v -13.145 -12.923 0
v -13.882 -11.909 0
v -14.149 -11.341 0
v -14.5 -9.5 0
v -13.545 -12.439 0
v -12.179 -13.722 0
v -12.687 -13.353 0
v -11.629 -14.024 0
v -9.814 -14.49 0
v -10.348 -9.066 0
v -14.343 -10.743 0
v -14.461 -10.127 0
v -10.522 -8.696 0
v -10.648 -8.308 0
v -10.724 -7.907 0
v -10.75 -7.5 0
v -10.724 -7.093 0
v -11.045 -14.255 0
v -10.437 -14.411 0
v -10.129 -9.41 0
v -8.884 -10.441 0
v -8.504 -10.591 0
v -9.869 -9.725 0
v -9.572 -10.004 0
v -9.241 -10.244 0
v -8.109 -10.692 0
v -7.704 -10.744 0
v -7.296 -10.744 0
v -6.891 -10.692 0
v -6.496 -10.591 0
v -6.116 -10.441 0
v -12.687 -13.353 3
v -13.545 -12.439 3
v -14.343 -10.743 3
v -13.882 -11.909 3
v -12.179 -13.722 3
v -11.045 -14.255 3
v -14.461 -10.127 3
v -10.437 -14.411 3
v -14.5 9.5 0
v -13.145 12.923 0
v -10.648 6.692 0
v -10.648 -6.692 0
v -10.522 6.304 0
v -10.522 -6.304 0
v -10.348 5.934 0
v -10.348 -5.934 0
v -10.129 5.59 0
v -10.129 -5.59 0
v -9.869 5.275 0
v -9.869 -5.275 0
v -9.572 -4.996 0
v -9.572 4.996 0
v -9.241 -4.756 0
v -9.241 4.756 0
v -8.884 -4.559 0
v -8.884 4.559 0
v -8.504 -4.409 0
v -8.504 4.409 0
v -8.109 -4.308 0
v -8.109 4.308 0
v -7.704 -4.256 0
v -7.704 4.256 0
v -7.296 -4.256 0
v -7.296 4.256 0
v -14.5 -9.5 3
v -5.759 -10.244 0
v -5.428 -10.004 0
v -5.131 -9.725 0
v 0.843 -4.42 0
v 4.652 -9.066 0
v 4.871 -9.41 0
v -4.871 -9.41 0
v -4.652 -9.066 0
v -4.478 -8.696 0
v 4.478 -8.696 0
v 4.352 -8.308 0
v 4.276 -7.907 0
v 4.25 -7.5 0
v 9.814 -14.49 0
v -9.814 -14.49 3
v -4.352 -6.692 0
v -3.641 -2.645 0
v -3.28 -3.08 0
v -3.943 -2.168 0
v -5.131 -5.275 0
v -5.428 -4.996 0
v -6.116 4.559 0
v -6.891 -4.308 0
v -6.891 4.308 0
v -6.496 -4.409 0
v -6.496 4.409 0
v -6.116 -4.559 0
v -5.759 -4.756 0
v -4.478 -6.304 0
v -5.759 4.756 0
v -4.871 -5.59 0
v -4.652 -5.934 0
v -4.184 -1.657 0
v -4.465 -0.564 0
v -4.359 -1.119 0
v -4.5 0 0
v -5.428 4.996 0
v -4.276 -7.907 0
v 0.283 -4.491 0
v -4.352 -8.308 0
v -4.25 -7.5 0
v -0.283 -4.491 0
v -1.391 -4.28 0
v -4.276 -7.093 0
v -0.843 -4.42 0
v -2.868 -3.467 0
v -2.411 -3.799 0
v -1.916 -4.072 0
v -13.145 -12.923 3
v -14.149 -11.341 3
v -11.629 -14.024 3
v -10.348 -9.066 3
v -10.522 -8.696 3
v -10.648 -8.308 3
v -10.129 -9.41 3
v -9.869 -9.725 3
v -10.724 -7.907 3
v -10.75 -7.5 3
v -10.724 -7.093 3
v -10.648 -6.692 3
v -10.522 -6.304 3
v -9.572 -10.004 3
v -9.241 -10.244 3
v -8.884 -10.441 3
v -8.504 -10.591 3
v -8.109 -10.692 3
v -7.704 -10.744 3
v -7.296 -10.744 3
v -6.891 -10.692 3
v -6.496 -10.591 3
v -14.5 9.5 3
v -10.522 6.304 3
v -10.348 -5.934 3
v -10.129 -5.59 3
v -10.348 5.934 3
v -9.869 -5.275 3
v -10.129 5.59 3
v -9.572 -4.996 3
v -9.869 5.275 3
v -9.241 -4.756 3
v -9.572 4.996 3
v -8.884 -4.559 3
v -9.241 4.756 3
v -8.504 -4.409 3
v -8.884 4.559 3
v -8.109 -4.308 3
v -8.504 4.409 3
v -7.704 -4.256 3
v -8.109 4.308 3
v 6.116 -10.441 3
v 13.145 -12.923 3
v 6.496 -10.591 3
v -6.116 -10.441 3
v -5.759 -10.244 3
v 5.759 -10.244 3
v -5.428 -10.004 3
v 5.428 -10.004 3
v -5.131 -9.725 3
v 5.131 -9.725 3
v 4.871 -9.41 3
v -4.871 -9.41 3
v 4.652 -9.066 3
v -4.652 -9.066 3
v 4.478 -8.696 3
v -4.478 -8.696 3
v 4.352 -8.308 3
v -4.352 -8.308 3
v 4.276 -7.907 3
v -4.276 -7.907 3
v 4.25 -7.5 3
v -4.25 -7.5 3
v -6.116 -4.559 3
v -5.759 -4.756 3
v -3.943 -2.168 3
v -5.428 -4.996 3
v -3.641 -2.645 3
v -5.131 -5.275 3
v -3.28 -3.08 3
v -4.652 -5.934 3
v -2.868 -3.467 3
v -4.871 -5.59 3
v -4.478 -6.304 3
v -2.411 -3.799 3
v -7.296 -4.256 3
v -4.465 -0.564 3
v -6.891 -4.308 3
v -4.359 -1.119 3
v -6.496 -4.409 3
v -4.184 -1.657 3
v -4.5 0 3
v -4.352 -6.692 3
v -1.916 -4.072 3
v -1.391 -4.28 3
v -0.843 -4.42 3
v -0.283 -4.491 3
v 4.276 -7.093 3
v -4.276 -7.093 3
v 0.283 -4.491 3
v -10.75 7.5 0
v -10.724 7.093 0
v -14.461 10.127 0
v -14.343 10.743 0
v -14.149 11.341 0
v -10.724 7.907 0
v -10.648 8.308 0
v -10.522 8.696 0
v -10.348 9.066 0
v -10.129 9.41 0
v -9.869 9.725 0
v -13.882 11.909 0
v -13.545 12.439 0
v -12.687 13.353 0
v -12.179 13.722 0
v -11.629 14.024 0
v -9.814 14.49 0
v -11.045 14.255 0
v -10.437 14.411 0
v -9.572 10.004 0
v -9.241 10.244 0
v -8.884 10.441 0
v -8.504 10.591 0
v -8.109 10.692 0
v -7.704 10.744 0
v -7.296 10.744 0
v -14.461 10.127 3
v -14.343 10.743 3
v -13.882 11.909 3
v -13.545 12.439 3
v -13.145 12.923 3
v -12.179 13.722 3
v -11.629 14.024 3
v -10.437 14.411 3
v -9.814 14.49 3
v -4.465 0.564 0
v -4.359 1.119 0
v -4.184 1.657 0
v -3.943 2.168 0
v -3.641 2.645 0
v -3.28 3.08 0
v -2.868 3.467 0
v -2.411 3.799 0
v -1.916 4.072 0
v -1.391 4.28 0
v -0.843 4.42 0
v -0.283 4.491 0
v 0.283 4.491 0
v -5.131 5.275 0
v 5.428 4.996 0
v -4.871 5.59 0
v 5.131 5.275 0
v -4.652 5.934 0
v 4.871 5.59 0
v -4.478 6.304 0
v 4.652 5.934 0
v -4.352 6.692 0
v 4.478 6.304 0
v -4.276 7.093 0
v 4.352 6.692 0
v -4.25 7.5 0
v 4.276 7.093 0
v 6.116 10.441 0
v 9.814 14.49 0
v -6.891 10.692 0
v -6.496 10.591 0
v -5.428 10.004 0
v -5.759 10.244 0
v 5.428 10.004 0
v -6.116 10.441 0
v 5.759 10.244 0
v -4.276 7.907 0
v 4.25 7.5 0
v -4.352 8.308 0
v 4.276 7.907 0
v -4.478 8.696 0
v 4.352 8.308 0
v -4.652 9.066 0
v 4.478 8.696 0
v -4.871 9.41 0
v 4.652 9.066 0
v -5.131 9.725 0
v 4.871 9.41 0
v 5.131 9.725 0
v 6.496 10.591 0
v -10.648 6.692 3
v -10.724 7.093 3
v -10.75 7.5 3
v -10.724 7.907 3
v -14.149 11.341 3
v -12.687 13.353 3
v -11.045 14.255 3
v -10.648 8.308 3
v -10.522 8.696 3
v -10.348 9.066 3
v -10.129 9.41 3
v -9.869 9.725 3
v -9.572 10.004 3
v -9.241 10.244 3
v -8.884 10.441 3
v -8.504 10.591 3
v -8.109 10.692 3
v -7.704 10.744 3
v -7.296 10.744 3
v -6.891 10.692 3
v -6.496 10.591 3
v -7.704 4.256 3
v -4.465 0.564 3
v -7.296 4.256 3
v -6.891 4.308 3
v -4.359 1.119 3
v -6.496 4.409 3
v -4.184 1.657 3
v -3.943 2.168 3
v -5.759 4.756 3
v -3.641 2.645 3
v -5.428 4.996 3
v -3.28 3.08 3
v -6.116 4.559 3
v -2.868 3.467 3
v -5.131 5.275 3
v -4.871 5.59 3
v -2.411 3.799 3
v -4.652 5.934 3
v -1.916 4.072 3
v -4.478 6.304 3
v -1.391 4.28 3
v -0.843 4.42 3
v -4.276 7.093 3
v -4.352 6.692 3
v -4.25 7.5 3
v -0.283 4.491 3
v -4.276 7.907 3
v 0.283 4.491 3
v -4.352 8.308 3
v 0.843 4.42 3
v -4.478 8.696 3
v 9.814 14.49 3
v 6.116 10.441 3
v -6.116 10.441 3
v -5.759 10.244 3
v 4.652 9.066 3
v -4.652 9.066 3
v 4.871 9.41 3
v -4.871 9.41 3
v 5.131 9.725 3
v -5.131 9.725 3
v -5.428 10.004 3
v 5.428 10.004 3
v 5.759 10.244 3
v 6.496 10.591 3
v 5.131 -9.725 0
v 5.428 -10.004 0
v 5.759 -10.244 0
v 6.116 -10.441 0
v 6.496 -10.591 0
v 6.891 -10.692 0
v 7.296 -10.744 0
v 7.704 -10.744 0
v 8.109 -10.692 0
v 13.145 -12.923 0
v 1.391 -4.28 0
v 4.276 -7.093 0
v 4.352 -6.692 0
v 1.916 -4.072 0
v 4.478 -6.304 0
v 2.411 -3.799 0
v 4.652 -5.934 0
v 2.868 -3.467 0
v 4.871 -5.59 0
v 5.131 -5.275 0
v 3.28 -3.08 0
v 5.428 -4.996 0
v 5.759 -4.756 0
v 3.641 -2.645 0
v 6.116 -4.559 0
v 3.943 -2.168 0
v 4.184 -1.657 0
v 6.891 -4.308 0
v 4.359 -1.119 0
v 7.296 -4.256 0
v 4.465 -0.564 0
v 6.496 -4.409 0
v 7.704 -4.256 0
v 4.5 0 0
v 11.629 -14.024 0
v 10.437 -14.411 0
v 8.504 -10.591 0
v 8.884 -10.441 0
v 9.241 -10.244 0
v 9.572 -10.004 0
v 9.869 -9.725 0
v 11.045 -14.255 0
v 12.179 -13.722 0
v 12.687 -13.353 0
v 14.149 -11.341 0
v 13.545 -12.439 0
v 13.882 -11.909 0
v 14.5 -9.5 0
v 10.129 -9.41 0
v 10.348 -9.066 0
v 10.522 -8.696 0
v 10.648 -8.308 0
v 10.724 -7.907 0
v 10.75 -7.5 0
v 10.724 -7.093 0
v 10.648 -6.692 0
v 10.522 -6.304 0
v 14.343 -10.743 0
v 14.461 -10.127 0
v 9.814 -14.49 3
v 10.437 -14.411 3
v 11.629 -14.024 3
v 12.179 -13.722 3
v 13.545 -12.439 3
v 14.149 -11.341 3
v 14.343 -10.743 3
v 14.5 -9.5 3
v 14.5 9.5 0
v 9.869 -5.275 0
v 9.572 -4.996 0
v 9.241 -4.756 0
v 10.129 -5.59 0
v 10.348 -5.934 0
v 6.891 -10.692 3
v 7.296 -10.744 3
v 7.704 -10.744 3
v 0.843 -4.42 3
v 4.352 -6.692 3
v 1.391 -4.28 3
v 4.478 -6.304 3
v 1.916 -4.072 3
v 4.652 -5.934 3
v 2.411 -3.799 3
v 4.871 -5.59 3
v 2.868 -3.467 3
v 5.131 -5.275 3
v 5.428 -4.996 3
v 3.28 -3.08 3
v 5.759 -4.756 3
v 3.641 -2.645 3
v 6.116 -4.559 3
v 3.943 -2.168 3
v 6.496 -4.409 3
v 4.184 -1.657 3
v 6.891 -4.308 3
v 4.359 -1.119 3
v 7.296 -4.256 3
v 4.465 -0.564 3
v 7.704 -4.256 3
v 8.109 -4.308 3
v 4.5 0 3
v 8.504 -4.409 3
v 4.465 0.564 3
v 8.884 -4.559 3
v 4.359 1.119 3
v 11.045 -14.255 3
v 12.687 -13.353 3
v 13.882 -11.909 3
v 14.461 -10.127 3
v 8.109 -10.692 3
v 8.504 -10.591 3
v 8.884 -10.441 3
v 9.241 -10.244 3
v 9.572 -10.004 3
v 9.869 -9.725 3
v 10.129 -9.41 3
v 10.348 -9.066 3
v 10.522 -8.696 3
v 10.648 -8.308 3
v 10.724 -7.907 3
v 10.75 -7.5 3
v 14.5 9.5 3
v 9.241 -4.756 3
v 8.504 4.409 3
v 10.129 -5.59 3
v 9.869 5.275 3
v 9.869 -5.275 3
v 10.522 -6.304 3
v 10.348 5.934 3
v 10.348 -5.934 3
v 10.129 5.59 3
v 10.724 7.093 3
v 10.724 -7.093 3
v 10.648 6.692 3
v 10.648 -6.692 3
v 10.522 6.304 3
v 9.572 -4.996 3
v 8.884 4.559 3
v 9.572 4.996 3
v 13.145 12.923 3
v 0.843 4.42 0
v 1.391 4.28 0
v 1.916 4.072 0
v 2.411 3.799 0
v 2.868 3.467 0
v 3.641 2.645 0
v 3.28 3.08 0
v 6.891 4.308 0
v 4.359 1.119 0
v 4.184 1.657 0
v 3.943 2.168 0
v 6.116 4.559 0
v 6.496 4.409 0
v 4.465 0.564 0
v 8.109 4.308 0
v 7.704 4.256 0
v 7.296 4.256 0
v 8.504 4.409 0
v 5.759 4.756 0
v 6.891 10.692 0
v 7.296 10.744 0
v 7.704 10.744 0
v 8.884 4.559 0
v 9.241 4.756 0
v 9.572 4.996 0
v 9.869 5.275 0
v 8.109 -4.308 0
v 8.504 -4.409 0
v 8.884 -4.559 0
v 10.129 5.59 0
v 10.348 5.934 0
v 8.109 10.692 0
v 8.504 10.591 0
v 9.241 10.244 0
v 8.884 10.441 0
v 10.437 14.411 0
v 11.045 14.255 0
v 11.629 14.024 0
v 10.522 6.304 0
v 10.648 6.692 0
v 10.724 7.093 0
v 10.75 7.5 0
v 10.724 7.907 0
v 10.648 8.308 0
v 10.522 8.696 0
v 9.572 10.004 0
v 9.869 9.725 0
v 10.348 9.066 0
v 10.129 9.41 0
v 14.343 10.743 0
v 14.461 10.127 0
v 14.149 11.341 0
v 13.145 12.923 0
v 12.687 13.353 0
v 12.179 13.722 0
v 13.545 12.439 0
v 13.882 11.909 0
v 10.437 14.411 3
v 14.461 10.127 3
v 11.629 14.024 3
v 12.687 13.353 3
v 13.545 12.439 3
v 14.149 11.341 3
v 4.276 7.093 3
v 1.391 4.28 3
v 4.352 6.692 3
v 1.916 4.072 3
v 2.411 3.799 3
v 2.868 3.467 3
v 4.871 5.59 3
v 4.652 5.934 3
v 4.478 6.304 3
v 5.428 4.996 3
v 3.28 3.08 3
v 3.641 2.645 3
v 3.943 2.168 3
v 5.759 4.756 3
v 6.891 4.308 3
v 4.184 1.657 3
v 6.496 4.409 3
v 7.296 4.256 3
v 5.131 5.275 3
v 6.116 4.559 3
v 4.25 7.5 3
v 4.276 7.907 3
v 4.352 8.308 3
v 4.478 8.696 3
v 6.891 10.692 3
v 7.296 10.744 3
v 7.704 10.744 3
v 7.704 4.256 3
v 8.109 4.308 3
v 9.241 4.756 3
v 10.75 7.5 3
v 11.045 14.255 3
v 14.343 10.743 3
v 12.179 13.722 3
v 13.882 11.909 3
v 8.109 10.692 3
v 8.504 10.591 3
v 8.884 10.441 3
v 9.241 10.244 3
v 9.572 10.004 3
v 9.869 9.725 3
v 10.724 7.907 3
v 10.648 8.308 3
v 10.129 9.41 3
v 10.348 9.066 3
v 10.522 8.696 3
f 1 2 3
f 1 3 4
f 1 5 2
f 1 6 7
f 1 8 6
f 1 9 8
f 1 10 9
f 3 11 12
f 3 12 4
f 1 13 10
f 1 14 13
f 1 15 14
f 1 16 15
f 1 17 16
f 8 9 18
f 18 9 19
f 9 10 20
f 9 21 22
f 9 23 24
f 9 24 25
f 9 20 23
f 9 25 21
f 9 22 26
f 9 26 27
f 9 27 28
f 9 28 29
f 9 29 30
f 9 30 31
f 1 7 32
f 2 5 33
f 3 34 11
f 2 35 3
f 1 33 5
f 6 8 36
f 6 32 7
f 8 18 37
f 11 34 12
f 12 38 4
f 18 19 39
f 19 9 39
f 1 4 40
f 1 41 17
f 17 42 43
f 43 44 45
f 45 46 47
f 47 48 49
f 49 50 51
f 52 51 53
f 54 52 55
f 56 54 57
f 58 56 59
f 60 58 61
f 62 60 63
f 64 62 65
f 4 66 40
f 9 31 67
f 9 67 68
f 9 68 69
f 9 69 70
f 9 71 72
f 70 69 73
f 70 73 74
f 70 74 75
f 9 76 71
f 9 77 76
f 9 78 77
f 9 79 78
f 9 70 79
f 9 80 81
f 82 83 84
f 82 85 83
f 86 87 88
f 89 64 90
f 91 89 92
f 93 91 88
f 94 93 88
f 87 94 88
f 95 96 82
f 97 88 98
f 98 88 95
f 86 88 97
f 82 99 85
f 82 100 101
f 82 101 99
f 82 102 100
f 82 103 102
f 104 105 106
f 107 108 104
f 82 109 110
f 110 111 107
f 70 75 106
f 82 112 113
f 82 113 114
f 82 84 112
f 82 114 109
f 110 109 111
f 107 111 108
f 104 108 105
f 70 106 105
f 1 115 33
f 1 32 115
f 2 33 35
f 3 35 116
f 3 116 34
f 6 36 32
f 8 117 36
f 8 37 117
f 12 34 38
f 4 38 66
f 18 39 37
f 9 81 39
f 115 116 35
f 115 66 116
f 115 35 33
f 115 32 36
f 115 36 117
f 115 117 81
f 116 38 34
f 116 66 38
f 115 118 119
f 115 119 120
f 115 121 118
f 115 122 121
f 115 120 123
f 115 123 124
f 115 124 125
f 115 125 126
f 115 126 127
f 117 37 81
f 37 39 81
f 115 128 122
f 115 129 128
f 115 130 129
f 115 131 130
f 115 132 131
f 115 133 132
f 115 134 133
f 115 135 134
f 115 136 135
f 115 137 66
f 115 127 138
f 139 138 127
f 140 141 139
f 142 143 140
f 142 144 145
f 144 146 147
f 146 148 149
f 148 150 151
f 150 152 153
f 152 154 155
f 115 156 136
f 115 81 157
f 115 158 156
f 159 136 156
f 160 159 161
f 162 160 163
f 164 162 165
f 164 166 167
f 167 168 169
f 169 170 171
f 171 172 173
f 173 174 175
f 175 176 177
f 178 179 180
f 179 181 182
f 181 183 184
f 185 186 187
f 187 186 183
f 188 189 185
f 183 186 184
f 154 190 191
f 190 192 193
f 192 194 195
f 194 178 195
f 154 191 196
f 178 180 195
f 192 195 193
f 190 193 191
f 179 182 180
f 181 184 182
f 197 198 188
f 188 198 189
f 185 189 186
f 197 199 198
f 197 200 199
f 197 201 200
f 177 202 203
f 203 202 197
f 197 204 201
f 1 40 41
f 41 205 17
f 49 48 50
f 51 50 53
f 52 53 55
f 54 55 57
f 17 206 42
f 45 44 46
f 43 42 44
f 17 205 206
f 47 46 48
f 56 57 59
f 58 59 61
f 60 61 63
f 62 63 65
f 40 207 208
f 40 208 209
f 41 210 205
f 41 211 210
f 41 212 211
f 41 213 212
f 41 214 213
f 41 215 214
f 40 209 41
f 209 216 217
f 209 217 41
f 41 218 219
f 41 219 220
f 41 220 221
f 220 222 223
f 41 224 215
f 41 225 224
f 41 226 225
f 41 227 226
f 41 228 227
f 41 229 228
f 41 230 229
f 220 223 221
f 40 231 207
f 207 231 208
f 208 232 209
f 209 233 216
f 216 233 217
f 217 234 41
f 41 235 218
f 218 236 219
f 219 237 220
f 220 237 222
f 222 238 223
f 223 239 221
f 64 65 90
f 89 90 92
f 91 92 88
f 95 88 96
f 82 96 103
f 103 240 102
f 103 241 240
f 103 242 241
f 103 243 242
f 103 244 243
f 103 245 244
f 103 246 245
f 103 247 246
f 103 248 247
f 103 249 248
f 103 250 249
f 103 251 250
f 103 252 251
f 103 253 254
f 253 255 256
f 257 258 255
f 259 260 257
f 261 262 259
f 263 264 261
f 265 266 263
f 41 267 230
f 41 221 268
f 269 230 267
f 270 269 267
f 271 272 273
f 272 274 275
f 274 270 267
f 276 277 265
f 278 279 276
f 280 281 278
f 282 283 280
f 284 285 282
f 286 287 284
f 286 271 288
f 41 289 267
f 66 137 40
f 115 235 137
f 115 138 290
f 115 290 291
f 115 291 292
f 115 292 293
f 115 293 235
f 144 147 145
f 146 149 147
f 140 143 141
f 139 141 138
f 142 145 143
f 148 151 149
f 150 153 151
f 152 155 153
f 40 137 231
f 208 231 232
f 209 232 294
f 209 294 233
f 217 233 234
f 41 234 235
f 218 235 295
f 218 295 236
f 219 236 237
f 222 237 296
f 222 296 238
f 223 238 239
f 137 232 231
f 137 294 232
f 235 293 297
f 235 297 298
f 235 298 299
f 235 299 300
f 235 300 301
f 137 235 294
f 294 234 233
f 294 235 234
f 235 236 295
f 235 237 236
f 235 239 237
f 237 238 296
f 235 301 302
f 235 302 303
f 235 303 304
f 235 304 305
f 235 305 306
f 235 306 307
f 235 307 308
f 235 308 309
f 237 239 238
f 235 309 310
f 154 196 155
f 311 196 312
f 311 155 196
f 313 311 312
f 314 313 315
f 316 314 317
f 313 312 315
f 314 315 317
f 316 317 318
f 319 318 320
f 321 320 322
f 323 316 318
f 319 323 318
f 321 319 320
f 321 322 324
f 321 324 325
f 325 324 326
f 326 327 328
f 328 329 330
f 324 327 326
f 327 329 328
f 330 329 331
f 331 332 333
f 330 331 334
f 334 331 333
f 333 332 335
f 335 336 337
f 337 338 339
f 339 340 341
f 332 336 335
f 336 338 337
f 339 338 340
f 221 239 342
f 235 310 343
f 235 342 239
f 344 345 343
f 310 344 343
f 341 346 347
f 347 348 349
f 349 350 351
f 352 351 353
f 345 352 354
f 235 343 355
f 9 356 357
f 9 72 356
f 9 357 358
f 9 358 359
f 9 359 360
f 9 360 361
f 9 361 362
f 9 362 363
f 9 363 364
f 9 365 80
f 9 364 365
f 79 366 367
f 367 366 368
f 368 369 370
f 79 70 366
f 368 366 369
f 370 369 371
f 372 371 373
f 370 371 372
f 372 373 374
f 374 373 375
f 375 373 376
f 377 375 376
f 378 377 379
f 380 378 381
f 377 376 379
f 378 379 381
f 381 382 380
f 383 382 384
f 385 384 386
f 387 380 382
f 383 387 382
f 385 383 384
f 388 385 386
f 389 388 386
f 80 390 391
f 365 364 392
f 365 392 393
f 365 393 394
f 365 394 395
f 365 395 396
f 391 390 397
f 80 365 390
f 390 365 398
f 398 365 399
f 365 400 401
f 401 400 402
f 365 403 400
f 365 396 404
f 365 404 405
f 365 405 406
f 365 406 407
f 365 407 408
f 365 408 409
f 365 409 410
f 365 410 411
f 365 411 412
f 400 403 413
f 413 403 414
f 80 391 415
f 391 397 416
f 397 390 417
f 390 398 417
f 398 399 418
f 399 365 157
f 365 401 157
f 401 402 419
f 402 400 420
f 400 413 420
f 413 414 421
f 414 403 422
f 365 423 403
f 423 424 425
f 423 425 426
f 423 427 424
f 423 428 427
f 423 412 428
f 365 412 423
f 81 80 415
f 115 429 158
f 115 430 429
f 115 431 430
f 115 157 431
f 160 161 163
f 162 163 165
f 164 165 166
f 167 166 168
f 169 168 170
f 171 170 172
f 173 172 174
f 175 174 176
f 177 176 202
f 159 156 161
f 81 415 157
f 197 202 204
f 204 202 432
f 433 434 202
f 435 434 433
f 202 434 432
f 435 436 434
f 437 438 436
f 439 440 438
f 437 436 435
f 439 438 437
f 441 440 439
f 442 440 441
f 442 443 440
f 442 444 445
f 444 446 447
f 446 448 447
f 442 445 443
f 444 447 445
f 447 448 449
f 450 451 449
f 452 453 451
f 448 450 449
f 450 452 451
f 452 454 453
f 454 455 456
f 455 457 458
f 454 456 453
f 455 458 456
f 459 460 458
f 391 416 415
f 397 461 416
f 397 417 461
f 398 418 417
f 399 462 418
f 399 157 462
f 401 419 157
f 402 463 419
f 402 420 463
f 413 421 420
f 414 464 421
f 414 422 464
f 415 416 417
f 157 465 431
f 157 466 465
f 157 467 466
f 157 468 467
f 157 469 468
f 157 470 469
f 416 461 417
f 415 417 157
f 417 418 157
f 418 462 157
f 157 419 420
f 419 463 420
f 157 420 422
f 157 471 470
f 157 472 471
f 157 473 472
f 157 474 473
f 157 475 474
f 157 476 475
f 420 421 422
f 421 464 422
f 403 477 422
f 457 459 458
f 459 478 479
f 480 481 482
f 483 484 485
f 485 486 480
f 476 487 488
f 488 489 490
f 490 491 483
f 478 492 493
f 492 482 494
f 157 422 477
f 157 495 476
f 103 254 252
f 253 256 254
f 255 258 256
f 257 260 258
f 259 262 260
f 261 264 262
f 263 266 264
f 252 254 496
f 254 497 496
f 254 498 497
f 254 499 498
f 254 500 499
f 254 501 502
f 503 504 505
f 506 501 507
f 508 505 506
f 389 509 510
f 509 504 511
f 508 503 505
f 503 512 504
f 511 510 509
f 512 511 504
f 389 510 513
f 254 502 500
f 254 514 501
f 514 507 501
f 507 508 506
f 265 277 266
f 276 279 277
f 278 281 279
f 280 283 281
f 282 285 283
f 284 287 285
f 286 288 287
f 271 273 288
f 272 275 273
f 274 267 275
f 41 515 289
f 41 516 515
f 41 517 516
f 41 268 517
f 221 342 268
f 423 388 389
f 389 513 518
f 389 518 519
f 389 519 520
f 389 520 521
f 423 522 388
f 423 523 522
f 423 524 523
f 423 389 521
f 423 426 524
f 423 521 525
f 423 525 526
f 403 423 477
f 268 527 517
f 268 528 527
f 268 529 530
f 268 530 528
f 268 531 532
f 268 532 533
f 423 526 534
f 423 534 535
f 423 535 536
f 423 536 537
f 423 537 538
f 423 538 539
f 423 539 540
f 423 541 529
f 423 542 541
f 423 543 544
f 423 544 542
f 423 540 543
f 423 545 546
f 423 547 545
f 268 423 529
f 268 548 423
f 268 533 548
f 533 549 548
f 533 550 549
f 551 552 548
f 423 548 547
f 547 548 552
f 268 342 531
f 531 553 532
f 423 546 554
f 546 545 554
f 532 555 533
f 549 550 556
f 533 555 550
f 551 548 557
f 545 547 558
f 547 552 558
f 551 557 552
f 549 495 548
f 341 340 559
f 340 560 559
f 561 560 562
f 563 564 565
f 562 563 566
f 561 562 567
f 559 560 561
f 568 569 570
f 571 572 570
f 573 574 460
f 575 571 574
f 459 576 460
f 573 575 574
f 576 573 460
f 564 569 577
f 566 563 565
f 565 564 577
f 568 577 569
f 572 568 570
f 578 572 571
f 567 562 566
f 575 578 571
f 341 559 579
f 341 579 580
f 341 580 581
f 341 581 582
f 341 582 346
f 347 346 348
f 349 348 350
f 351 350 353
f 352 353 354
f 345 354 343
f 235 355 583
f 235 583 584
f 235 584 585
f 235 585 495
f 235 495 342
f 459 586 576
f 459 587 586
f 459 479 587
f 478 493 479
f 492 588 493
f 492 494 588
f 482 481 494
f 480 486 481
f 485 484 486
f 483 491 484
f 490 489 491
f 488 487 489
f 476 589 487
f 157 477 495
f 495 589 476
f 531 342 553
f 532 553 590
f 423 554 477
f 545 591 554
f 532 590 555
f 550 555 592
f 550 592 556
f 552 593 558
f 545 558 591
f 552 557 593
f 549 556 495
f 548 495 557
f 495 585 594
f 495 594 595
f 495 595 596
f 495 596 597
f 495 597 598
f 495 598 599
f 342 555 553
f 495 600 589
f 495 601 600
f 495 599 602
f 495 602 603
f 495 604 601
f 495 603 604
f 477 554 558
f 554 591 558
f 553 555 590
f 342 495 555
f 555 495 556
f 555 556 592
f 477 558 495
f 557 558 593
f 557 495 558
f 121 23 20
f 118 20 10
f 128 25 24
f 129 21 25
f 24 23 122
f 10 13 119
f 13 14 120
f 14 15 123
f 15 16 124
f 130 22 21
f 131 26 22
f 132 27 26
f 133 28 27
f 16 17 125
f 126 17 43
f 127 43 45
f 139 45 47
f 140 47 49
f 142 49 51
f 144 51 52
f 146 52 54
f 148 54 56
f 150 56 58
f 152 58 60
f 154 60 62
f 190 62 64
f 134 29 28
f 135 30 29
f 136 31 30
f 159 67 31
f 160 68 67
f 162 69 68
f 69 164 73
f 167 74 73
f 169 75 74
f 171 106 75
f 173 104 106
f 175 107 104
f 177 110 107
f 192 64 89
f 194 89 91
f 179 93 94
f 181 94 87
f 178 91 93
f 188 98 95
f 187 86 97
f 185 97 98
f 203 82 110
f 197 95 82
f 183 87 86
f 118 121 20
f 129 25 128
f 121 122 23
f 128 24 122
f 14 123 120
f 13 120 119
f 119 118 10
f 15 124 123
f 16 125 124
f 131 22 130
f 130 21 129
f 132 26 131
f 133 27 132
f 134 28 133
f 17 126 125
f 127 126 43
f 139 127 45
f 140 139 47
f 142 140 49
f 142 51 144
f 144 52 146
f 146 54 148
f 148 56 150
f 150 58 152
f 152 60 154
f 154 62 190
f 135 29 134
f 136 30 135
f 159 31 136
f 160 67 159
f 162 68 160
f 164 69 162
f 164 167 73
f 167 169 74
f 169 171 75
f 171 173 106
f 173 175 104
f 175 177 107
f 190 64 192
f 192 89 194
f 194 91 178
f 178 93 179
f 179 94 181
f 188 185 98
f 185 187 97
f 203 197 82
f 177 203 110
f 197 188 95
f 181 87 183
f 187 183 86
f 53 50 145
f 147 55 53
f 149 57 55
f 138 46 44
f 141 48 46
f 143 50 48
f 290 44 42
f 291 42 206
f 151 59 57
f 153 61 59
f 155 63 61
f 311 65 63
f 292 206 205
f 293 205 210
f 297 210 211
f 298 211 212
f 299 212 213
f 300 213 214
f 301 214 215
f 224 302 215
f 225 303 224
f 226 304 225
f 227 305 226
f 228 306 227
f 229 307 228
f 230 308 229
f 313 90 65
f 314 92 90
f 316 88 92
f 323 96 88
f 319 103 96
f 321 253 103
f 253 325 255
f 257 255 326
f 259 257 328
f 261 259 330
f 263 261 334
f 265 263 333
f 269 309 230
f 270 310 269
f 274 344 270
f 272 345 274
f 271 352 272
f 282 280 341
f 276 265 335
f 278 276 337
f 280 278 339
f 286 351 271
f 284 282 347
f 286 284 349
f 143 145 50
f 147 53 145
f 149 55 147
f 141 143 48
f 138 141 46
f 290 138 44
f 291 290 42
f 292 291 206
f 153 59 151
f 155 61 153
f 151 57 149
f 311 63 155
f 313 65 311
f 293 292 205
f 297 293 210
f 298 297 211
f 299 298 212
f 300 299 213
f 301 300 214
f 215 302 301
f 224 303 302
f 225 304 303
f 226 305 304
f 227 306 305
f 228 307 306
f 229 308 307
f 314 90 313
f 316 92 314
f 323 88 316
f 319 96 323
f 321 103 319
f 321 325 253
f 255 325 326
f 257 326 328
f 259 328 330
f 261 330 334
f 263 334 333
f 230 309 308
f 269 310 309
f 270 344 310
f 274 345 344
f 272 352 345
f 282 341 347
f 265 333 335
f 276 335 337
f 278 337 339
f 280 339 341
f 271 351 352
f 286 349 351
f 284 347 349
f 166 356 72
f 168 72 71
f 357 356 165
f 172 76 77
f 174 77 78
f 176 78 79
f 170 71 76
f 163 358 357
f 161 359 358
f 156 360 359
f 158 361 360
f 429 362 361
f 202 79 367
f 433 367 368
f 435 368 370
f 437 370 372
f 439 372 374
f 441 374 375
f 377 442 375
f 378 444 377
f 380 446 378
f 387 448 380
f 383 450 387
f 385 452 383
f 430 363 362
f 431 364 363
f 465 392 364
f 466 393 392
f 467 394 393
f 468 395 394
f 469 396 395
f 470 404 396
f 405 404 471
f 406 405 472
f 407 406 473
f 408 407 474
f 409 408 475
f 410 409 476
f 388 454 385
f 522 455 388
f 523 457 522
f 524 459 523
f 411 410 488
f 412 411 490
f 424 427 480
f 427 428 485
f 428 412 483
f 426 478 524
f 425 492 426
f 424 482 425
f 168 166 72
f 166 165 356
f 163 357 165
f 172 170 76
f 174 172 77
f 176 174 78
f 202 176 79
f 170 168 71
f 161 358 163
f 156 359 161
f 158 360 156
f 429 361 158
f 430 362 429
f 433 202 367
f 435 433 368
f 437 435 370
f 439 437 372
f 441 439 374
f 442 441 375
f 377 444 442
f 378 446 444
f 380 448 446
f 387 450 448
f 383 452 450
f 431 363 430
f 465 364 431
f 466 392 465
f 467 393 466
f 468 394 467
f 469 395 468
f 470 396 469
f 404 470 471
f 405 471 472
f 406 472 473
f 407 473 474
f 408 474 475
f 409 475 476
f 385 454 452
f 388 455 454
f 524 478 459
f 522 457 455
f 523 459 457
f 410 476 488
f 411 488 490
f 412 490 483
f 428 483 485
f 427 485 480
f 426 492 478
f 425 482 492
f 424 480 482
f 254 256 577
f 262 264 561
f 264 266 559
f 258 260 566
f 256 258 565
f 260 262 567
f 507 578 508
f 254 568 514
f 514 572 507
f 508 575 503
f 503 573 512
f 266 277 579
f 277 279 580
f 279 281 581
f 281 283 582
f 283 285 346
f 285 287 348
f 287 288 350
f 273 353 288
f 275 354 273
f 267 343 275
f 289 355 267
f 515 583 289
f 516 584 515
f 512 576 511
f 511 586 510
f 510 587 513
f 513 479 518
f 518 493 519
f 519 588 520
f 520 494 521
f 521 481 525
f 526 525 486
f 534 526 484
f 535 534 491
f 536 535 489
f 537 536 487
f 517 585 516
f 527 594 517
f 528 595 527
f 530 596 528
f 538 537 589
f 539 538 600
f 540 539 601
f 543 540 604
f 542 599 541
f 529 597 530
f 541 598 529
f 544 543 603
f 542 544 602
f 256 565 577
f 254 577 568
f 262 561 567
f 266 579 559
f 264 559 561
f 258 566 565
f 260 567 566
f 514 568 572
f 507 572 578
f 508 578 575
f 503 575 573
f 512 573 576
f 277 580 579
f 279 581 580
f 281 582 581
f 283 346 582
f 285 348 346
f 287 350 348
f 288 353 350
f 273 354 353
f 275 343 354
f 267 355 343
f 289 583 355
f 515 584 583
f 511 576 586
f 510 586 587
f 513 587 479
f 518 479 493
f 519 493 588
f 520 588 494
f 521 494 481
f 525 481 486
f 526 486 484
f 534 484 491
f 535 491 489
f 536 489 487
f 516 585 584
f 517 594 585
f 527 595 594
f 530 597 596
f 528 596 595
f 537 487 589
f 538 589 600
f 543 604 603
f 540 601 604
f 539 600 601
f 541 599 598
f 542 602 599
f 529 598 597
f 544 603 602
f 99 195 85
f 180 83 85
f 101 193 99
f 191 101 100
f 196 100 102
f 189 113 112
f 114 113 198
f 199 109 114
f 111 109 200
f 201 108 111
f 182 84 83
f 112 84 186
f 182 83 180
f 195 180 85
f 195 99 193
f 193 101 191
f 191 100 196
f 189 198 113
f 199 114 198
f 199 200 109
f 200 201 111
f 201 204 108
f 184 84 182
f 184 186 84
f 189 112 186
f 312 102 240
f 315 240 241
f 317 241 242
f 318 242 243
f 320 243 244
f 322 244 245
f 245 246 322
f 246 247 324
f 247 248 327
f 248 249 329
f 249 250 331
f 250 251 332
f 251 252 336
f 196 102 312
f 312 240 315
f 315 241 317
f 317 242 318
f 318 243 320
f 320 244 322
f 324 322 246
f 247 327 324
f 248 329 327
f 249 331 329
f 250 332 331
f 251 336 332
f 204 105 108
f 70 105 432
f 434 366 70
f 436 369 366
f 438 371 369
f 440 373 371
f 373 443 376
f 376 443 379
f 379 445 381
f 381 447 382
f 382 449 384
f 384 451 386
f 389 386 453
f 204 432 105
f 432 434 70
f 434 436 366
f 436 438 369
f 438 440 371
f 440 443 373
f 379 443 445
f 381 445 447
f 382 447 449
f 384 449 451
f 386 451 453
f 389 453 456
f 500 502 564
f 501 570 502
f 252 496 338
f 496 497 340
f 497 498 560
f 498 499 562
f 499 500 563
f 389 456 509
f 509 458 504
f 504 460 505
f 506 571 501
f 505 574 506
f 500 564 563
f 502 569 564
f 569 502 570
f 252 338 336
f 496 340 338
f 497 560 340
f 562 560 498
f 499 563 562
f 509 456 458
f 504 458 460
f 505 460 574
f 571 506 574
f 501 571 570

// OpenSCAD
$fn = 50;

difference() {
	union() {
		hull() {
			translate(v = [-9.5, 9.5, 0]) {
				cylinder(h = 3, r = 5);
			}
			translate(v = [9.5, 9.5, 0]) {
				cylinder(h = 3, r = 5);
			}
			translate(v = [-9.5, -9.5, 0]) {
				cylinder(h = 3, r = 5);
			}
			translate(v = [9.5, -9.5, 0]) {
				cylinder(h = 3, r = 5);
			}
		}
	}
	union() {
		translate(v = [-7.5, -7.5, -100.0]) {
			cylinder(h = 200, r = 3.25);
		}
		translate(v = [-7.5, 7.5, -100.0]) {
			cylinder(h = 200, r = 3.25);
		}
		translate(v = [7.5, -7.5, -100.0]) {
			cylinder(h = 200, r = 3.25);
		}
		translate(v = [7.5, 7.5, -100.0]) {
			cylinder(h = 200, r = 3.25);
		}
		translate(v = [-7.5, -7.5, -100.0]) {
			cylinder(h = 200, r = 1.8);
		}
		translate(v = [-7.5, 7.5, -100.0]) {
			cylinder(h = 200, r = 1.8);
		}
		translate(v = [7.5, -7.5, -100.0]) {
			cylinder(h = 200, r = 1.8);
		}
		translate(v = [7.5, 7.5, -100.0]) {
			cylinder(h = 200, r = 1.8);
		}
		cylinder(h = 3, r = 4.5);
	}
}
